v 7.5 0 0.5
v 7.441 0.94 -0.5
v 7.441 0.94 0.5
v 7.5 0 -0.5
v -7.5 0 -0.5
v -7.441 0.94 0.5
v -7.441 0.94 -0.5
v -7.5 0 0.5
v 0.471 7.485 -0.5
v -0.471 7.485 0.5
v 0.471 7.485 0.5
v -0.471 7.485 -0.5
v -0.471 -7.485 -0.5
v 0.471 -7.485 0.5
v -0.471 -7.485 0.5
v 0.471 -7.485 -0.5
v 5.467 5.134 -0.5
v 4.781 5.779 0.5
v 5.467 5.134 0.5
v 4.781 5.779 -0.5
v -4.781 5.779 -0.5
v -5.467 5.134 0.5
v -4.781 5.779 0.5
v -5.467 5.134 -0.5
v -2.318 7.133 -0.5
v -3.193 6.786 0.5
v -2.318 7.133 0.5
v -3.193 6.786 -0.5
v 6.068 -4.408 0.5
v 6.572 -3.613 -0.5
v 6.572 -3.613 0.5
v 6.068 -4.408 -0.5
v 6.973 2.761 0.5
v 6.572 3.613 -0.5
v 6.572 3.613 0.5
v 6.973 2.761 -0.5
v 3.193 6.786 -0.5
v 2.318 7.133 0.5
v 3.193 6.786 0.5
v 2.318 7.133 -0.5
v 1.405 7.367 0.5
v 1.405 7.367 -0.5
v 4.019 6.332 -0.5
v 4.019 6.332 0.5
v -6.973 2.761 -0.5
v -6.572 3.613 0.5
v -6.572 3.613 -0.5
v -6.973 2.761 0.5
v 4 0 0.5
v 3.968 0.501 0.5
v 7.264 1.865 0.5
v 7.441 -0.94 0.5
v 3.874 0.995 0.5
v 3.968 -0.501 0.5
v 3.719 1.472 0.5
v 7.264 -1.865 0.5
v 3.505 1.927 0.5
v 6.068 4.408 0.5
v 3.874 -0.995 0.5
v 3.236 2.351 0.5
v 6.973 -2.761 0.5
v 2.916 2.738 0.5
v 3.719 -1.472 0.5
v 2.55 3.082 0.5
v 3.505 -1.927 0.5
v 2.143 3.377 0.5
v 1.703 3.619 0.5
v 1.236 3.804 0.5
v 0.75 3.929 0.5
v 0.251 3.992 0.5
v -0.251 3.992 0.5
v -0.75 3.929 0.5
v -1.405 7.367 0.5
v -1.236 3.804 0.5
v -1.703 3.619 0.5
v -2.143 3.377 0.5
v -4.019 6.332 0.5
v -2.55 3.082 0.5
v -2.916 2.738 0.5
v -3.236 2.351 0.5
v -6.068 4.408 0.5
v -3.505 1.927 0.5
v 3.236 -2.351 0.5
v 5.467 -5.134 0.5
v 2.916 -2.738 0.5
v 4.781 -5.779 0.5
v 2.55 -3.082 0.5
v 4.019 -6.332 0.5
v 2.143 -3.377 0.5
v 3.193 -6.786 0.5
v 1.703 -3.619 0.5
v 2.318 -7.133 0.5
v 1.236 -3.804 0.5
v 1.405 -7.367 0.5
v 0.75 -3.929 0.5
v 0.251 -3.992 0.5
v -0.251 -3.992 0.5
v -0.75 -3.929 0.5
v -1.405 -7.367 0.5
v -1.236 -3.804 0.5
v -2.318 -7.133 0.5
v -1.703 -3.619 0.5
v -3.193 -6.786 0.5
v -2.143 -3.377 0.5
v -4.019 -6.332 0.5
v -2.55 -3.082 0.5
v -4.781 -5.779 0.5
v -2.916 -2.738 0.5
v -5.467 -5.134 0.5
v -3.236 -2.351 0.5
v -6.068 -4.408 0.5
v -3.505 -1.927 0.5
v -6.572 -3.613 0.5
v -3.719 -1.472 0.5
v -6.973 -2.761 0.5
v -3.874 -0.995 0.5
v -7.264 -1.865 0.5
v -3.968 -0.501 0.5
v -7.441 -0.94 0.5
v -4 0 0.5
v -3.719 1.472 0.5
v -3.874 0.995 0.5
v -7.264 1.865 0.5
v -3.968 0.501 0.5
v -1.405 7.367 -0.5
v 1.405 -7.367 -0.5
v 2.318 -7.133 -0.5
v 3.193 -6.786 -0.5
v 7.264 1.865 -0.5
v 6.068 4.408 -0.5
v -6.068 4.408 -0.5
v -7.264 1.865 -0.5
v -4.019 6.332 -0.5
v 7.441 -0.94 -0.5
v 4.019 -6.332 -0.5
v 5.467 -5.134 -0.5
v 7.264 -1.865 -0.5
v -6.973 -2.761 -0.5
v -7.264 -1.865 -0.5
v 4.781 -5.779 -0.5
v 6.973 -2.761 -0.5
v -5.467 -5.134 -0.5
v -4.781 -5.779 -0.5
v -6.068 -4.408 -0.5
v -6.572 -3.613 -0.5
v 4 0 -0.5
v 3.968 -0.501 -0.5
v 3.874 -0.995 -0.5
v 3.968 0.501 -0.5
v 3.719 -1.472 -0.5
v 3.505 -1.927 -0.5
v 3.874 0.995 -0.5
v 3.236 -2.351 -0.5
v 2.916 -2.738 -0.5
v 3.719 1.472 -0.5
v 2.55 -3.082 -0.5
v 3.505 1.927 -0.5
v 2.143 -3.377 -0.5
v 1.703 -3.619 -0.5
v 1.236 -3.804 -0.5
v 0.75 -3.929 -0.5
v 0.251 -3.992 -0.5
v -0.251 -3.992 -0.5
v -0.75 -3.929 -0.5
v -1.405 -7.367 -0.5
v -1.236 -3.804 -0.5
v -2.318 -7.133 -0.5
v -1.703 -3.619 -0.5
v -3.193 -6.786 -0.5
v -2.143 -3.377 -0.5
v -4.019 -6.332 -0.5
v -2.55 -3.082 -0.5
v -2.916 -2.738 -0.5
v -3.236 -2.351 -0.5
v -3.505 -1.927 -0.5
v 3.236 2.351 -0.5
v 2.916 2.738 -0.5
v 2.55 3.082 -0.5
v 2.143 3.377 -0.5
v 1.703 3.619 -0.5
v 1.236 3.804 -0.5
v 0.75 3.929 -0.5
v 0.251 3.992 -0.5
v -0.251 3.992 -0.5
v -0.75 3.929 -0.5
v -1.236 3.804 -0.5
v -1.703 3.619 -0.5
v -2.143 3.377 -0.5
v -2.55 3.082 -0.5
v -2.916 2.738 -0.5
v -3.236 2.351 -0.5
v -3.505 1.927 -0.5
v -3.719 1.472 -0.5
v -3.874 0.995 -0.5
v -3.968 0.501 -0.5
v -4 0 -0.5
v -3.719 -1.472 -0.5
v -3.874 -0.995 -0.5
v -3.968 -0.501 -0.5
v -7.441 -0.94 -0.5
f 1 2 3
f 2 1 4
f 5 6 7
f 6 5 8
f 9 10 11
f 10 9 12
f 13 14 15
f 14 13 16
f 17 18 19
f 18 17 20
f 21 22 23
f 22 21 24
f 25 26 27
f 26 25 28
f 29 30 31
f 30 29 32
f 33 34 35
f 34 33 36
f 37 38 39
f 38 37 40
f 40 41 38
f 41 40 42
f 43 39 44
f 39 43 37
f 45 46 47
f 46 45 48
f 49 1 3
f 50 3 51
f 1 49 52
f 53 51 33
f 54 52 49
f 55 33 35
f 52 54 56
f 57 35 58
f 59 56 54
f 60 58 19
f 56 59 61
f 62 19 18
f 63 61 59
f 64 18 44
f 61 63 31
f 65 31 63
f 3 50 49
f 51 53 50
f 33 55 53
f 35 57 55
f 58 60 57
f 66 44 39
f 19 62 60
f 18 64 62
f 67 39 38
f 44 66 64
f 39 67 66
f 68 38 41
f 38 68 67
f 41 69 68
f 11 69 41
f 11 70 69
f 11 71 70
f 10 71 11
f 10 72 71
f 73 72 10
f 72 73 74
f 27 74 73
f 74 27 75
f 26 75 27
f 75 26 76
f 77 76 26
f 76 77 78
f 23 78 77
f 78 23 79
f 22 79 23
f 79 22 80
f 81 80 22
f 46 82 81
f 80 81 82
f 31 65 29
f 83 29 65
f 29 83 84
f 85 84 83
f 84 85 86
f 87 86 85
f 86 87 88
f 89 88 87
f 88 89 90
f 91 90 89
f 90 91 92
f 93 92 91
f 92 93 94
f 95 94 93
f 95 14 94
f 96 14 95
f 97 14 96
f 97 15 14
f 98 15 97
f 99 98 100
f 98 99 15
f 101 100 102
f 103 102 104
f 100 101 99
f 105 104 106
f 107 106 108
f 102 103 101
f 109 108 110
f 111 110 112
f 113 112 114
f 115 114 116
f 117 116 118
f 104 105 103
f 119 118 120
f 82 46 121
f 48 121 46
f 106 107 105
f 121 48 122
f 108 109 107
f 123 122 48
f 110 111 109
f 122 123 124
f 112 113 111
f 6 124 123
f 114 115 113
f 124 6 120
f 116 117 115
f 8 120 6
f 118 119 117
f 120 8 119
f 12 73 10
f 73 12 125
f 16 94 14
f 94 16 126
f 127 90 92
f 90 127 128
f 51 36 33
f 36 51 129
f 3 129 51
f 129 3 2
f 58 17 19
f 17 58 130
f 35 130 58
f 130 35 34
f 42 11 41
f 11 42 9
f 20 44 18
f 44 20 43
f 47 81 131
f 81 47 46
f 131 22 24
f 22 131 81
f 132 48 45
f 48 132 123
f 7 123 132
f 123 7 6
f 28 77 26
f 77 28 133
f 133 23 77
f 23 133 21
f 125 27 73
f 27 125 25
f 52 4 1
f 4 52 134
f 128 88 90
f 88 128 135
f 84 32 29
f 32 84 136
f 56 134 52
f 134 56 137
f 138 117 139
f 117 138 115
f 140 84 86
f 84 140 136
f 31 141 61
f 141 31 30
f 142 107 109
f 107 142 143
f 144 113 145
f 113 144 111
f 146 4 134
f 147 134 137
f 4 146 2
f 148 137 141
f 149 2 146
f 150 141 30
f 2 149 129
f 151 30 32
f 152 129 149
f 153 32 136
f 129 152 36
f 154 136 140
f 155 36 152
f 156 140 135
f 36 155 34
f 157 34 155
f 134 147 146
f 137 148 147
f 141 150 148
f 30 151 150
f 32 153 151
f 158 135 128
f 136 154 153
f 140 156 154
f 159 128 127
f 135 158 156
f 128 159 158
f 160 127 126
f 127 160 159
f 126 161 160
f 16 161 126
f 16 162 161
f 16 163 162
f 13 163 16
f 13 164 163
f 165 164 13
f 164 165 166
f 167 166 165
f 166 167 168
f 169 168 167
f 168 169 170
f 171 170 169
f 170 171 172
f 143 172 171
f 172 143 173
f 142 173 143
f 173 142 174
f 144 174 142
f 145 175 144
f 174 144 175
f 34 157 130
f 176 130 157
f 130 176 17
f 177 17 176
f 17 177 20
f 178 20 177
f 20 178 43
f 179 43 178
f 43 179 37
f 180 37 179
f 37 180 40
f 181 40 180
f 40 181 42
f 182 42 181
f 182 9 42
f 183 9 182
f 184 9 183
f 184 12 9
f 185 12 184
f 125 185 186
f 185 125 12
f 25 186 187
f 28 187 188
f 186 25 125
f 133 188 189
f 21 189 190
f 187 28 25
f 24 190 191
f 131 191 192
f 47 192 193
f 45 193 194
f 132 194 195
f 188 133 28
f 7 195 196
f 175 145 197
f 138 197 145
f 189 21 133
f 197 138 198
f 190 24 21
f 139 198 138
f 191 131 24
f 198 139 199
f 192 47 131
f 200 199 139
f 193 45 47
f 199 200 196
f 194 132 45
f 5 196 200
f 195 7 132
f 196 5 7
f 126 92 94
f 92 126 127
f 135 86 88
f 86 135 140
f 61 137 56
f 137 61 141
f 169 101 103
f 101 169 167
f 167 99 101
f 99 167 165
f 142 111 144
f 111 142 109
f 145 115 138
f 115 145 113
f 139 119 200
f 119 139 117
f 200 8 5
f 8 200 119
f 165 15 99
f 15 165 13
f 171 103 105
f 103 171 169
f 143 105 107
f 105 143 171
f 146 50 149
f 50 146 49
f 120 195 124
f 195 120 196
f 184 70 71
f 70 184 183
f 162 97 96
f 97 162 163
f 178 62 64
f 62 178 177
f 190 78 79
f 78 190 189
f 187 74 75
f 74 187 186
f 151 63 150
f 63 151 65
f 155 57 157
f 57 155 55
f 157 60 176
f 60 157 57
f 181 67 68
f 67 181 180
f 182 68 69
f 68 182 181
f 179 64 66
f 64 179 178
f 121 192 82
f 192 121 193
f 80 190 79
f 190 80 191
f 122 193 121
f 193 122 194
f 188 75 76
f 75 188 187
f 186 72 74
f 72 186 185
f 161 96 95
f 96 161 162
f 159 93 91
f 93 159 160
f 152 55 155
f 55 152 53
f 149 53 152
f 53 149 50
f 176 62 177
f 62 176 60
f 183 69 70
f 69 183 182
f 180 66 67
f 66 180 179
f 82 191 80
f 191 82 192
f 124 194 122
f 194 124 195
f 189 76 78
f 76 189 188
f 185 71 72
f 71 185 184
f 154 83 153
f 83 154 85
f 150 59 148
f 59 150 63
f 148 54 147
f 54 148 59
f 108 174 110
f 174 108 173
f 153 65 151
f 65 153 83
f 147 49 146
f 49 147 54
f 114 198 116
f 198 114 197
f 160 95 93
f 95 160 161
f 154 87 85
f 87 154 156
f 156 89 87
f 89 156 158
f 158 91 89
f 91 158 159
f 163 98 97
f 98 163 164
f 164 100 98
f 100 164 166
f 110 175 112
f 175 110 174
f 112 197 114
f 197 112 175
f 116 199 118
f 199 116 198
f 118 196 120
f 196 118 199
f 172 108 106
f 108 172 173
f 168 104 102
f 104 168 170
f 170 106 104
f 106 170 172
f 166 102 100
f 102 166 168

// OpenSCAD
$fn = 50;


difference() {
	union() {
		translate(v = [0, 0, -0.5000000000]) {
			cylinder(h = 1, r = 7.5000000000);
		}
	}
	union() {
		translate(v = [0, 0, -100.0000000000]) {
			cylinder(h = 200, r = 4.0000000000);
		}
	}
}
